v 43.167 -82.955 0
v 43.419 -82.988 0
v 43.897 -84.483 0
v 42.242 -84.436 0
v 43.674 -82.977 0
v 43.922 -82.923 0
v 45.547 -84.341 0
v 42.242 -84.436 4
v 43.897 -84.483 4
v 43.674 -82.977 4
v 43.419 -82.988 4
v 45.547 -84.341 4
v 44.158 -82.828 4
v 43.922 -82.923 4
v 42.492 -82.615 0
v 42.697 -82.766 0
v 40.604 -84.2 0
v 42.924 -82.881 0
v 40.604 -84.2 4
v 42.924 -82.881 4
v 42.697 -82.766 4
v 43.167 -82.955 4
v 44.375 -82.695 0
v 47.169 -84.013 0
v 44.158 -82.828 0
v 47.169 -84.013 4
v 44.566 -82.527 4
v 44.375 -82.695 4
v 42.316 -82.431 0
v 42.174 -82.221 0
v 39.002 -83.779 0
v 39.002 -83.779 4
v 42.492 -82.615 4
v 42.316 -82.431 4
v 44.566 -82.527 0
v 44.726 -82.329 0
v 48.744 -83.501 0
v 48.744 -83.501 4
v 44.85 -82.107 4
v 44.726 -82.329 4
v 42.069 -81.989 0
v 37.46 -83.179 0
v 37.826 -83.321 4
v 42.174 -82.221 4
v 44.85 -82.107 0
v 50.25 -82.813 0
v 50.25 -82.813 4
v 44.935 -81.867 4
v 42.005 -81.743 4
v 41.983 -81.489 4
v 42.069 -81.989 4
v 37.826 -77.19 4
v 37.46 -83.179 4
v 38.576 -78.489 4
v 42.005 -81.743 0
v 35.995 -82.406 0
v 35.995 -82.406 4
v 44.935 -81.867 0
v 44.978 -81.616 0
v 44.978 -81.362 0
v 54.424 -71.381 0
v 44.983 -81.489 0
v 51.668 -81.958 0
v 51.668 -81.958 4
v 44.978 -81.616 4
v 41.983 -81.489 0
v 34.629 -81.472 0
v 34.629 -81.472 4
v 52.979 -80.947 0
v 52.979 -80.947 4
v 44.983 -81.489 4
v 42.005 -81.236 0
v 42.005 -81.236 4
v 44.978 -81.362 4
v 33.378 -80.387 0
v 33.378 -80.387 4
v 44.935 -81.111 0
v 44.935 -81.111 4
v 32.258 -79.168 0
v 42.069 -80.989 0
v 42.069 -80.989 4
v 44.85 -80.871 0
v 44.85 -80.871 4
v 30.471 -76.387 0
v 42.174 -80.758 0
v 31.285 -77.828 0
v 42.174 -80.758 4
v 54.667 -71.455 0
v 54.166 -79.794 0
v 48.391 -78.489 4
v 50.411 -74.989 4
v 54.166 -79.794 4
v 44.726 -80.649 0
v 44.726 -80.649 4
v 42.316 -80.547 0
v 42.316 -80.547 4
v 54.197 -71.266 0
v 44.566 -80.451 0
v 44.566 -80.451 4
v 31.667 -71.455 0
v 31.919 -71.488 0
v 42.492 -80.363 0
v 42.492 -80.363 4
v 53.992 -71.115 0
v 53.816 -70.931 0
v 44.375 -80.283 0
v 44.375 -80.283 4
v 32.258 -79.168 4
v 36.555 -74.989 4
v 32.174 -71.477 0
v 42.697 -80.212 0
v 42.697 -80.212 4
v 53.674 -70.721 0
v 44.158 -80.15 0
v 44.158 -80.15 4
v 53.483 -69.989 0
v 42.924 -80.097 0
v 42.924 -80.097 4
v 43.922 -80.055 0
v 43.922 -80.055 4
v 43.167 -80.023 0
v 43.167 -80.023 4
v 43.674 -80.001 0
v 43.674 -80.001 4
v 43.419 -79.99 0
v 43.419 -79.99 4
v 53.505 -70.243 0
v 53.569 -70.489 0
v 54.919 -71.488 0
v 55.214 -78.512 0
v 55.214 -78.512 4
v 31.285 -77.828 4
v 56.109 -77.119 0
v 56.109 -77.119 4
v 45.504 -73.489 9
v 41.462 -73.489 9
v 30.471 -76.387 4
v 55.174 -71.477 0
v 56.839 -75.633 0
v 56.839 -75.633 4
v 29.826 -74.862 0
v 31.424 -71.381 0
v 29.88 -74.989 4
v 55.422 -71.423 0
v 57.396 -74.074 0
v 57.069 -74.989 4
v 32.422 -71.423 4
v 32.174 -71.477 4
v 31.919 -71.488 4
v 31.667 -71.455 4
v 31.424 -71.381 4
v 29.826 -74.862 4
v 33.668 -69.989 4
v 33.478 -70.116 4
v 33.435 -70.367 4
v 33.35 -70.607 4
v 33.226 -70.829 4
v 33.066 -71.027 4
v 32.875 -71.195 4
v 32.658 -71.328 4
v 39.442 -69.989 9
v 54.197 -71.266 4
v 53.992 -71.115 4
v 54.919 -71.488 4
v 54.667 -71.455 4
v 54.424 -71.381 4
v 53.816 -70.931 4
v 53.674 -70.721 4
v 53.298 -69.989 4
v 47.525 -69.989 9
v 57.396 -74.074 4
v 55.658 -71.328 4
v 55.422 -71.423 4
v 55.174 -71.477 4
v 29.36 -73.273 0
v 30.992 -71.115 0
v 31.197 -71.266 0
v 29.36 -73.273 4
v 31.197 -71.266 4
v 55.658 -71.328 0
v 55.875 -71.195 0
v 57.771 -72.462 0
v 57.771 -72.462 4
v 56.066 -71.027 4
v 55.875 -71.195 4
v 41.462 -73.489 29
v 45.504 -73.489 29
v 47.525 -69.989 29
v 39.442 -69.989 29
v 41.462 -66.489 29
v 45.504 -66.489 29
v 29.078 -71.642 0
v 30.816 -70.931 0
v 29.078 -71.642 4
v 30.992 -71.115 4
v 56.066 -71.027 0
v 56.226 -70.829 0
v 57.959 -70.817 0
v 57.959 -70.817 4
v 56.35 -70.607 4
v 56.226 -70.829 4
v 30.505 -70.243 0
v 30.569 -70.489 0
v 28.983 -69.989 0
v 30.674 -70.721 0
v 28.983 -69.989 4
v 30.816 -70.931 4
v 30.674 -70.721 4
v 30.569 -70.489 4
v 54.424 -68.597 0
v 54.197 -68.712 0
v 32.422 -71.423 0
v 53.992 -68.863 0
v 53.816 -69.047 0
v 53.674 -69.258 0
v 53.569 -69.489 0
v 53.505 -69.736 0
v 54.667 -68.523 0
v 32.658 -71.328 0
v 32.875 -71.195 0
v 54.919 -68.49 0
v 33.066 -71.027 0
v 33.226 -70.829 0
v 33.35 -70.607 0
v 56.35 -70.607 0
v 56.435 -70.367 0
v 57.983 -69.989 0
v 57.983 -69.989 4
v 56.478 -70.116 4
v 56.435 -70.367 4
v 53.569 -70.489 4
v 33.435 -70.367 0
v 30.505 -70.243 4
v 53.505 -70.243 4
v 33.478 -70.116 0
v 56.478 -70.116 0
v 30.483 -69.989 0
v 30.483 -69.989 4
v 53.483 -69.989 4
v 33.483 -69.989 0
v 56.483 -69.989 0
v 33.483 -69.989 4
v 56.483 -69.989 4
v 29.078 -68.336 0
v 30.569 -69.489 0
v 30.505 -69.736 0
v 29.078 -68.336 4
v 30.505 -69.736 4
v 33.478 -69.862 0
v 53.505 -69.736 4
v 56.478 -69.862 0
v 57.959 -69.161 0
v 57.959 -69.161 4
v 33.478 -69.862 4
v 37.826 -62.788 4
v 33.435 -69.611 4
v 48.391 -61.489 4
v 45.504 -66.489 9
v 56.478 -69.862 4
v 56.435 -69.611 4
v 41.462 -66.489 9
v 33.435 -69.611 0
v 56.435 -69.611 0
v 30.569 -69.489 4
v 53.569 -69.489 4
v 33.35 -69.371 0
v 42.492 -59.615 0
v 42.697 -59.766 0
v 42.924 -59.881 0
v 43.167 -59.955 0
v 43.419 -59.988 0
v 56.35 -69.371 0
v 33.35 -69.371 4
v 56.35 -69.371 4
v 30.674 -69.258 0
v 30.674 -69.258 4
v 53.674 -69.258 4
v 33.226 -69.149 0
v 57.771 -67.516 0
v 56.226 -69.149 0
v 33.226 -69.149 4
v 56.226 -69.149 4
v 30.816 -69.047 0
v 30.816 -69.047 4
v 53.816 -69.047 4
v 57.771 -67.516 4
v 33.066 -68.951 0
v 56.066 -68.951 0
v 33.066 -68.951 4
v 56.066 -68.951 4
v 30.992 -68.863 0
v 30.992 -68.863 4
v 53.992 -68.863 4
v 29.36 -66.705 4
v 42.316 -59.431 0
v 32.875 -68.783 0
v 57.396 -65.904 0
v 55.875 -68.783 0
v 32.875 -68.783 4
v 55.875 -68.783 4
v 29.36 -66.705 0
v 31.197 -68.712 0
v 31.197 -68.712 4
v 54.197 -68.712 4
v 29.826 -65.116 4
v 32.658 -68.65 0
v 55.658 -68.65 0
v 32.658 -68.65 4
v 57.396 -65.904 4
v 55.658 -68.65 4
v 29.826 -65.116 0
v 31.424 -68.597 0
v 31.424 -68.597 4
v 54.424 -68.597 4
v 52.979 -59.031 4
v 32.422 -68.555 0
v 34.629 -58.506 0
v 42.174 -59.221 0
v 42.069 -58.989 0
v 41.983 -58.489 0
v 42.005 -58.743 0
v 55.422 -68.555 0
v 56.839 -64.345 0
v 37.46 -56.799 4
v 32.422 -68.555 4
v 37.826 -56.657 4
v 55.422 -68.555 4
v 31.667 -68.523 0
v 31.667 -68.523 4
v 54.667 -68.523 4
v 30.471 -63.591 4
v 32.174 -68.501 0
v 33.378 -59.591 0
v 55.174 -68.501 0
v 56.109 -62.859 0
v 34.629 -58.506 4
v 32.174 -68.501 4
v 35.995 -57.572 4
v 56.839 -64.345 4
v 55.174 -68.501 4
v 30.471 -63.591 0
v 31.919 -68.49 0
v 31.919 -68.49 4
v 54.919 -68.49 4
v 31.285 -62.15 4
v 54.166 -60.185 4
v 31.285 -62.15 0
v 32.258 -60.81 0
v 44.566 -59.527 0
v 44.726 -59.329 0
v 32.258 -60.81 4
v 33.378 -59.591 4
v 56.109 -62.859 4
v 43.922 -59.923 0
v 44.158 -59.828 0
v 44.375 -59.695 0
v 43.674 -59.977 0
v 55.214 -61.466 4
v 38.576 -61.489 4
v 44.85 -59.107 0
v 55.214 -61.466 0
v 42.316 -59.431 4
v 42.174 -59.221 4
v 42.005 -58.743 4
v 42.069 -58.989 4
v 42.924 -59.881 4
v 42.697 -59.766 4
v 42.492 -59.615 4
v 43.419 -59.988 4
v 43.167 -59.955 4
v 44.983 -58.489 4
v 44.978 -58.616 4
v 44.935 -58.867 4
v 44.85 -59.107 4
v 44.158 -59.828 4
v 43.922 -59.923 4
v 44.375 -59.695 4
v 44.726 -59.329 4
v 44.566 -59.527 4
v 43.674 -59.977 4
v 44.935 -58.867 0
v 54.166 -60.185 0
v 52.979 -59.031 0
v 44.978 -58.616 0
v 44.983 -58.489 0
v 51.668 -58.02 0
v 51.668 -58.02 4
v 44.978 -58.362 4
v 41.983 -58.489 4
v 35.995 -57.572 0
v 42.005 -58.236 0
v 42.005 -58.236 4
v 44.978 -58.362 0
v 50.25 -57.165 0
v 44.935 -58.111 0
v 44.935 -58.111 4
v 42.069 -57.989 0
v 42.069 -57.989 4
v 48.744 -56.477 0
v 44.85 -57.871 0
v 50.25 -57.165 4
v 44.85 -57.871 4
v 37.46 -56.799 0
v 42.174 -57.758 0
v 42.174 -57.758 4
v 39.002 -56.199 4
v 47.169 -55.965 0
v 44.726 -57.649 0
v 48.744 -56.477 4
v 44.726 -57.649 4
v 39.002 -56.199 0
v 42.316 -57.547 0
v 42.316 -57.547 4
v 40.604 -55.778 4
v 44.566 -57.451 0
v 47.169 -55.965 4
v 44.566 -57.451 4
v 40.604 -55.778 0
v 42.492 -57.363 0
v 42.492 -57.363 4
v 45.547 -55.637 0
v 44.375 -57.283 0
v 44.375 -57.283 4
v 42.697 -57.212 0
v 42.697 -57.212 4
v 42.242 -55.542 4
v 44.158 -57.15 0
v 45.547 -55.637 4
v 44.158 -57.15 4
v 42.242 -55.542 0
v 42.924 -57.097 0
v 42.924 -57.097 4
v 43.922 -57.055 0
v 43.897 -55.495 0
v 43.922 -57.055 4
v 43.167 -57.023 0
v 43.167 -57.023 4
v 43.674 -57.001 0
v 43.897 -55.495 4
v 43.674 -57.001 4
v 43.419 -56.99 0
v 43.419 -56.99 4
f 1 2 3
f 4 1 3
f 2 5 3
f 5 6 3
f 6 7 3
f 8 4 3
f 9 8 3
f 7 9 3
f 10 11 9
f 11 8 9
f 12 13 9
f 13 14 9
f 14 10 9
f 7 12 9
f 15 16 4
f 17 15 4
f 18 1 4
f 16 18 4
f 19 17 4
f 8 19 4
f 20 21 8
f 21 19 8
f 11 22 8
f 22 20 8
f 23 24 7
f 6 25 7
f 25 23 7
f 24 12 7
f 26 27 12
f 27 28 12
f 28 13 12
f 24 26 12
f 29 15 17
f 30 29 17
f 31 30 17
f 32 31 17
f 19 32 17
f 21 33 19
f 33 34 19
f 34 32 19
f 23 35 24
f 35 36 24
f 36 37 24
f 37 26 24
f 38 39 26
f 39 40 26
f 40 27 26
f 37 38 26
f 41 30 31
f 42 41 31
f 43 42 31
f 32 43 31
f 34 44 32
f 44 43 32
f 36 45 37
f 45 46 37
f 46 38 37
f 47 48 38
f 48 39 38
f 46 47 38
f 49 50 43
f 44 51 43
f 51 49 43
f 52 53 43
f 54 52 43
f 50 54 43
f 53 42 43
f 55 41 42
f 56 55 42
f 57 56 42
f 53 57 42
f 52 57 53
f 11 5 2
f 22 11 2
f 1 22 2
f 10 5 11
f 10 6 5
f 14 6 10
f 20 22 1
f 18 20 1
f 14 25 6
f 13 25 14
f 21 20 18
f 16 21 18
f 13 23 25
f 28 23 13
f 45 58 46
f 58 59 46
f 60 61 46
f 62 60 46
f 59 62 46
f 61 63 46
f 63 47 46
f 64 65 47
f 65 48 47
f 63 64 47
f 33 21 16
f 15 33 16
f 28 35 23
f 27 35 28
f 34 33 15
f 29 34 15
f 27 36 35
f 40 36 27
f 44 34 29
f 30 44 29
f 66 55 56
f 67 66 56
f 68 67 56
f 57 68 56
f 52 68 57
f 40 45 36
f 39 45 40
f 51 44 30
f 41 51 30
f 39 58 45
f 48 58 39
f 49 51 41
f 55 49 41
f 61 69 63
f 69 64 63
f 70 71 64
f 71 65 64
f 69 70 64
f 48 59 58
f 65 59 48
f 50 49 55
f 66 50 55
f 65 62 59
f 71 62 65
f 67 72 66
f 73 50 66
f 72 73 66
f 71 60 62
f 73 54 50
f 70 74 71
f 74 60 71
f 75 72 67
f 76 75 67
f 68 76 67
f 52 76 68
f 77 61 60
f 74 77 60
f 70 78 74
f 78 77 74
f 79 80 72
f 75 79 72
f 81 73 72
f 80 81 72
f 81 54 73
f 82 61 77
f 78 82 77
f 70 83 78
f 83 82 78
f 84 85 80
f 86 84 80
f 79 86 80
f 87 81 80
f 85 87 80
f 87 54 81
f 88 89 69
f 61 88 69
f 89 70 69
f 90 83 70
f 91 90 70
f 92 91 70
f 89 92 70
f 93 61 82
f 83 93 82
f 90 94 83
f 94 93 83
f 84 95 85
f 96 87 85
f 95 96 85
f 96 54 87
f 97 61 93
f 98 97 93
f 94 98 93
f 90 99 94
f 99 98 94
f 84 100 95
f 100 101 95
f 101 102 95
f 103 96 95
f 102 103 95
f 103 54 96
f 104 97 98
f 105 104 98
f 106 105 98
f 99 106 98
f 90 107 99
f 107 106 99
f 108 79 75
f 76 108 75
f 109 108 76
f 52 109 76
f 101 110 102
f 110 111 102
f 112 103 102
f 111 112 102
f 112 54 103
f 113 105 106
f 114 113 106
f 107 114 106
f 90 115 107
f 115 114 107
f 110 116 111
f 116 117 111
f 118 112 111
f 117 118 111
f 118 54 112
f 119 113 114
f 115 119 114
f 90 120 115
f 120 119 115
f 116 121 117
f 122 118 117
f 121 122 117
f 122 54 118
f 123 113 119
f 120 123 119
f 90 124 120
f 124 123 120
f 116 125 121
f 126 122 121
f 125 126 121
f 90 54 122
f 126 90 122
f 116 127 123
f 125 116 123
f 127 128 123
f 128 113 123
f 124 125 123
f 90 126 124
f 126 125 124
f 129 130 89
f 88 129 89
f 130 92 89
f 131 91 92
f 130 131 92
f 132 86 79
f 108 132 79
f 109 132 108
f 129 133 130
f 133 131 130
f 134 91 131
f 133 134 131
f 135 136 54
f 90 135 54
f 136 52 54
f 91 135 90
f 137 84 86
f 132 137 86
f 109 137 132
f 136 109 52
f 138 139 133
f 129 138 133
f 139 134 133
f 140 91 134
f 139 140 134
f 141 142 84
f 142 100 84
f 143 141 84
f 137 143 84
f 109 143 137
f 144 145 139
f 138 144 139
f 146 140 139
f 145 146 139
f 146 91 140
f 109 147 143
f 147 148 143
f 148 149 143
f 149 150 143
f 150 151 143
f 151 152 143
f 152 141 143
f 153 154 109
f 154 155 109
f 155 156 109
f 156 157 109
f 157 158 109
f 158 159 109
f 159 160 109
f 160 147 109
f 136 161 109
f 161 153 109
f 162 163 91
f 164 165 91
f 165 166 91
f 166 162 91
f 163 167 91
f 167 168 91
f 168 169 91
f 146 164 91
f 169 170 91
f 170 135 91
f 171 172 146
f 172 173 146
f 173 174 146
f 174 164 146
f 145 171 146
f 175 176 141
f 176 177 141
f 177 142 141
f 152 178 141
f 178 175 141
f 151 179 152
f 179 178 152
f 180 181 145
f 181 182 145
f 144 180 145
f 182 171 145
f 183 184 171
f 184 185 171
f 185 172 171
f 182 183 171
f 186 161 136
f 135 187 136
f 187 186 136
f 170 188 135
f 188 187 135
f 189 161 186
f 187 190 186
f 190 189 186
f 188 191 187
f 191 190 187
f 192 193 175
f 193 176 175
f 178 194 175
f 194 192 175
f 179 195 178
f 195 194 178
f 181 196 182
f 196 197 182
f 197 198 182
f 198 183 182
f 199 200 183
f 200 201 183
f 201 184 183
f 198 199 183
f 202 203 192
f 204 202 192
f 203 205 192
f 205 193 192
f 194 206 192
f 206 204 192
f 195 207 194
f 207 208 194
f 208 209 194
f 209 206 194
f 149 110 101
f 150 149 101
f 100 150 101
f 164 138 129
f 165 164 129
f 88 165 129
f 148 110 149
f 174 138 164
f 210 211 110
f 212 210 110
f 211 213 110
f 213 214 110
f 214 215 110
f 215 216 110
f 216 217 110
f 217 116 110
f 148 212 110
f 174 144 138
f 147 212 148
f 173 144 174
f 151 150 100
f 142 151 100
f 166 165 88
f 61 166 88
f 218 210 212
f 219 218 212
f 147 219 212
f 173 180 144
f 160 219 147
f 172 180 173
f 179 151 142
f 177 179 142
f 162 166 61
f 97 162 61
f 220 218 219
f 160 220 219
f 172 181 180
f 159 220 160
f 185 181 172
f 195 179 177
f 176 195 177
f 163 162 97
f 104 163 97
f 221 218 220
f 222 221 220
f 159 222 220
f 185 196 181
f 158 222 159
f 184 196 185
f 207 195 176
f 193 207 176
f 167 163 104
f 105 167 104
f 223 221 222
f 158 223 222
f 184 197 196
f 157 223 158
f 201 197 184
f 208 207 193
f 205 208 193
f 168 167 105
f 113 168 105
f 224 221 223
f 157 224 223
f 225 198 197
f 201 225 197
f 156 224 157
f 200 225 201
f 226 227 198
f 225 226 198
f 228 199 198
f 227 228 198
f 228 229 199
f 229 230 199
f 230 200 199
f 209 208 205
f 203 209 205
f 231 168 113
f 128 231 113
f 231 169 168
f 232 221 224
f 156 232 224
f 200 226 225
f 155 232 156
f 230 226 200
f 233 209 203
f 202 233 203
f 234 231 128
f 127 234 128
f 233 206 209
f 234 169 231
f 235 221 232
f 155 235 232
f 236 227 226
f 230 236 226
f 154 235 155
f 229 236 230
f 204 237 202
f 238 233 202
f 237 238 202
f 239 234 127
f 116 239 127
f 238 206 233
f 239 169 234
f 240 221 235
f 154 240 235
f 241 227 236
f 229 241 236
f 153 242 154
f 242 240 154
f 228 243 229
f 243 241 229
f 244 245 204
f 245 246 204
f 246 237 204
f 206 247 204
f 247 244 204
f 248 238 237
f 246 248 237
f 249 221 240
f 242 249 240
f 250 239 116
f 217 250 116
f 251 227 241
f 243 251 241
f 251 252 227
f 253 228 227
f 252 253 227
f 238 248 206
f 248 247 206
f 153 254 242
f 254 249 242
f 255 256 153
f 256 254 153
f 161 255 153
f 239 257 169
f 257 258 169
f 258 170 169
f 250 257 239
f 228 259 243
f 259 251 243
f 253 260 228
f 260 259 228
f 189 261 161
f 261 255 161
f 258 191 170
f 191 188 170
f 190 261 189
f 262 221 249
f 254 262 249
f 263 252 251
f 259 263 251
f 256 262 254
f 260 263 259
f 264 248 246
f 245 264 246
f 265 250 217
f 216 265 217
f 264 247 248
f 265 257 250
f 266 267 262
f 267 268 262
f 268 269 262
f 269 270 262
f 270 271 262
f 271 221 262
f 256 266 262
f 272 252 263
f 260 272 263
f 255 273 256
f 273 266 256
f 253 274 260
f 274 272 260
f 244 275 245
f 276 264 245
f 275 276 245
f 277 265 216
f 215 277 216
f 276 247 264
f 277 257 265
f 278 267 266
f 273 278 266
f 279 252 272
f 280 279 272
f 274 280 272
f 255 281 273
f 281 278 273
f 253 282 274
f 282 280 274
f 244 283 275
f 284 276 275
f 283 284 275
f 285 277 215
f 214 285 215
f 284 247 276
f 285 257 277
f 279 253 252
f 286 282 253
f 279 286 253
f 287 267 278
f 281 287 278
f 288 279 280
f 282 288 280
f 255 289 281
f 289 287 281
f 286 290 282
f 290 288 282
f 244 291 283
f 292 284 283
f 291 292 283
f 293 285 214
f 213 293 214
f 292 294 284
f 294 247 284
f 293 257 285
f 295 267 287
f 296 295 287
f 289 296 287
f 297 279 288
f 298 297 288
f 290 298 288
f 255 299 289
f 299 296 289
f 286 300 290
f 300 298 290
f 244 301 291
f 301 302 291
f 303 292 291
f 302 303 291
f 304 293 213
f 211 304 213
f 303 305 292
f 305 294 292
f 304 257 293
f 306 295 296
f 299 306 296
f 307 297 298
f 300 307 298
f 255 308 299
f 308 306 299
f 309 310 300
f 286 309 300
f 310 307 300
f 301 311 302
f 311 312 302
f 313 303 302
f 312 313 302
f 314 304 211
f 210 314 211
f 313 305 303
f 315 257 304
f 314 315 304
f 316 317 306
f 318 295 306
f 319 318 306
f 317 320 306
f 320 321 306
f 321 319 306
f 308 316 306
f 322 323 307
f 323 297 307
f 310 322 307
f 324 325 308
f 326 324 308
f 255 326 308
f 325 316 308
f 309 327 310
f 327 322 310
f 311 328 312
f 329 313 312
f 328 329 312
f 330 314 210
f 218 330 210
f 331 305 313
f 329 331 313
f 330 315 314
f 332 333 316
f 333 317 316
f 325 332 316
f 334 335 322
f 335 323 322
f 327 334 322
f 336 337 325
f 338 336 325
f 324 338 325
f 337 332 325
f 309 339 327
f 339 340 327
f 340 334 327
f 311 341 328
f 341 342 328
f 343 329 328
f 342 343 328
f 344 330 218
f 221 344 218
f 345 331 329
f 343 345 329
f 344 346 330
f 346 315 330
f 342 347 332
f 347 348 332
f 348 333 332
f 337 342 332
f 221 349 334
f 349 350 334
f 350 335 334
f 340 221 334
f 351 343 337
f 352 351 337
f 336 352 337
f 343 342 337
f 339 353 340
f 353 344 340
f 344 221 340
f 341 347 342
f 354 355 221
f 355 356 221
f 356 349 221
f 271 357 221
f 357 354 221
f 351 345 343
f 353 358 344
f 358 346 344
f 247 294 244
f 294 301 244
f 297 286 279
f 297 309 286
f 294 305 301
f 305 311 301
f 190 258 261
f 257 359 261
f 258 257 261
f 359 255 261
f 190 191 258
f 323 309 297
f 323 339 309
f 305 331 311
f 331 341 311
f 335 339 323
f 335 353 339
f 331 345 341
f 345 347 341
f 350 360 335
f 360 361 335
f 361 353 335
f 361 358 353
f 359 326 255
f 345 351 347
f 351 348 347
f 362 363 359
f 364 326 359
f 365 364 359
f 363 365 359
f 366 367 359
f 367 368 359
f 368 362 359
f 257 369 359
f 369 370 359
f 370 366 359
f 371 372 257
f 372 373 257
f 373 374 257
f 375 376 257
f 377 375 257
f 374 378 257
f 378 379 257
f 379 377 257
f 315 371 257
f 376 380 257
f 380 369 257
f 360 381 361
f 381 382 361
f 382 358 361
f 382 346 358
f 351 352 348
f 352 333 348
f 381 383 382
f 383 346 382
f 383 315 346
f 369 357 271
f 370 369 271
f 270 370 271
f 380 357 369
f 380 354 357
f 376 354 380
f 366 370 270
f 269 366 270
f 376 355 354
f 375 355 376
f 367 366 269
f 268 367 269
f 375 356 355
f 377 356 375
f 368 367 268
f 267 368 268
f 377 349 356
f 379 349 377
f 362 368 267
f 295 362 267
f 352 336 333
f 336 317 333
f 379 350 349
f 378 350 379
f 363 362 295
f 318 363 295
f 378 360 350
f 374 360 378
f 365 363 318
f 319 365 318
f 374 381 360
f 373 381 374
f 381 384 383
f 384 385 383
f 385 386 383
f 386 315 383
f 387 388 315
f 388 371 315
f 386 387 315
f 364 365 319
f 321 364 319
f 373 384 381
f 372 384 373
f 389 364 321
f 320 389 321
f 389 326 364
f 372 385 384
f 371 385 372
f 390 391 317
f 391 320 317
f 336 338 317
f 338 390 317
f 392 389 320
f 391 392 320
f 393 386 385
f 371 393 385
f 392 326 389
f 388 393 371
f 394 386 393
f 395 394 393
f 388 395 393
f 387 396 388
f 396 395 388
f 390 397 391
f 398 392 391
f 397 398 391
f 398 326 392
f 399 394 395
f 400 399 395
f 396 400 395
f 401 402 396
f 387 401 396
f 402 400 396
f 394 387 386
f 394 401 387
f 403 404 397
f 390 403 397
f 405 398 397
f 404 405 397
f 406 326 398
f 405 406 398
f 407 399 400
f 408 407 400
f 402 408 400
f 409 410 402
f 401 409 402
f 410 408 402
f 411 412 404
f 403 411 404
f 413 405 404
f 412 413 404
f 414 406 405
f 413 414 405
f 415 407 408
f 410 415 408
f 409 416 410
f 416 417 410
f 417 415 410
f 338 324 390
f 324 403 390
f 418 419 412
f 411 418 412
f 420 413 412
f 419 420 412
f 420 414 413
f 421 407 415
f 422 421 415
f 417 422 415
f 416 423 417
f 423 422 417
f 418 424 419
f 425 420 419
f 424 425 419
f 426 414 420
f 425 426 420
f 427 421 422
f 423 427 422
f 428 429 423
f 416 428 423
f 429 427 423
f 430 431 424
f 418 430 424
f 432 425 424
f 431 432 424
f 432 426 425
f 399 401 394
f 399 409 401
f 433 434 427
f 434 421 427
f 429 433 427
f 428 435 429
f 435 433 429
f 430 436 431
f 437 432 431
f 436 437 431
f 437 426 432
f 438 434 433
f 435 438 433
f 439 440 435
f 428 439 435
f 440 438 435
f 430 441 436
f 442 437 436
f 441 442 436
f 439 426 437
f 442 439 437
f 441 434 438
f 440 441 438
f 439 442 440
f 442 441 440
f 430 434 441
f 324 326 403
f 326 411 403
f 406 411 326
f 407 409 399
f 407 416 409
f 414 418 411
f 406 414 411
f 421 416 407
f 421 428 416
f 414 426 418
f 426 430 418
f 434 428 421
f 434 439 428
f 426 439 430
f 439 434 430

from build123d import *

# Parameters (mm, degrees)
SKETCH1_R           = 14.5
SKETCH1_R_2         = 1.5
BOSS_EXTRUDE1_DEPTH = 4
BOSS_EXTRUDE2_DEPTH = 25
CHAMFER1_SIZE       = 5


with BuildPart() as part:
    # Sketch1 → Boss-Extrude1 (new body)
    with BuildSketch(Plane.XY):
        with Locations((43.483141232, -69.989052064)):
            Circle(SKETCH1_R)
        with Locations((43.483141232, -58.489052064)):
            Circle(SKETCH1_R_2, mode=Mode.SUBTRACT)
        with Locations((54.983141232, -69.989052064)):
            Circle(SKETCH1_R_2, mode=Mode.SUBTRACT)
        with Locations((31.983141232, -69.989052064)):
            Circle(SKETCH1_R_2, mode=Mode.SUBTRACT)
        with Locations((43.483141232, -81.489052064)):
            Circle(SKETCH1_R_2, mode=Mode.SUBTRACT)
    extrude(amount=BOSS_EXTRUDE1_DEPTH)

    # Sketch2 → Boss-Extrude2 (add)
    with BuildSketch(Plane.XY.offset(4)):
        Polygon((47.524593117, -69.989052064), (45.503867174, -66.489052064), (41.46241529, -66.489052064), (39.441689348, -69.989052064), (41.46241529, -73.489052064), (45.503867174, -73.489052064), align=None)
    extrude(amount=BOSS_EXTRUDE2_DEPTH)

    # Chamfer1
    chamfer1_edges = [part.edges().sort_by_distance(p)[0] for p in [
        (46.514230145, -71.739052064, 4),
        (46.514230145, -68.239052064, 4),
        (43.483141232, -66.489052064, 4),
        (40.452052319, -68.239052064, 4),
        (40.452052319, -71.739052064, 4),
        (43.483141232, -73.489052064, 4),
    ]]
    chamfer(chamfer1_edges, length=CHAMFER1_SIZE)


solid = part.part
